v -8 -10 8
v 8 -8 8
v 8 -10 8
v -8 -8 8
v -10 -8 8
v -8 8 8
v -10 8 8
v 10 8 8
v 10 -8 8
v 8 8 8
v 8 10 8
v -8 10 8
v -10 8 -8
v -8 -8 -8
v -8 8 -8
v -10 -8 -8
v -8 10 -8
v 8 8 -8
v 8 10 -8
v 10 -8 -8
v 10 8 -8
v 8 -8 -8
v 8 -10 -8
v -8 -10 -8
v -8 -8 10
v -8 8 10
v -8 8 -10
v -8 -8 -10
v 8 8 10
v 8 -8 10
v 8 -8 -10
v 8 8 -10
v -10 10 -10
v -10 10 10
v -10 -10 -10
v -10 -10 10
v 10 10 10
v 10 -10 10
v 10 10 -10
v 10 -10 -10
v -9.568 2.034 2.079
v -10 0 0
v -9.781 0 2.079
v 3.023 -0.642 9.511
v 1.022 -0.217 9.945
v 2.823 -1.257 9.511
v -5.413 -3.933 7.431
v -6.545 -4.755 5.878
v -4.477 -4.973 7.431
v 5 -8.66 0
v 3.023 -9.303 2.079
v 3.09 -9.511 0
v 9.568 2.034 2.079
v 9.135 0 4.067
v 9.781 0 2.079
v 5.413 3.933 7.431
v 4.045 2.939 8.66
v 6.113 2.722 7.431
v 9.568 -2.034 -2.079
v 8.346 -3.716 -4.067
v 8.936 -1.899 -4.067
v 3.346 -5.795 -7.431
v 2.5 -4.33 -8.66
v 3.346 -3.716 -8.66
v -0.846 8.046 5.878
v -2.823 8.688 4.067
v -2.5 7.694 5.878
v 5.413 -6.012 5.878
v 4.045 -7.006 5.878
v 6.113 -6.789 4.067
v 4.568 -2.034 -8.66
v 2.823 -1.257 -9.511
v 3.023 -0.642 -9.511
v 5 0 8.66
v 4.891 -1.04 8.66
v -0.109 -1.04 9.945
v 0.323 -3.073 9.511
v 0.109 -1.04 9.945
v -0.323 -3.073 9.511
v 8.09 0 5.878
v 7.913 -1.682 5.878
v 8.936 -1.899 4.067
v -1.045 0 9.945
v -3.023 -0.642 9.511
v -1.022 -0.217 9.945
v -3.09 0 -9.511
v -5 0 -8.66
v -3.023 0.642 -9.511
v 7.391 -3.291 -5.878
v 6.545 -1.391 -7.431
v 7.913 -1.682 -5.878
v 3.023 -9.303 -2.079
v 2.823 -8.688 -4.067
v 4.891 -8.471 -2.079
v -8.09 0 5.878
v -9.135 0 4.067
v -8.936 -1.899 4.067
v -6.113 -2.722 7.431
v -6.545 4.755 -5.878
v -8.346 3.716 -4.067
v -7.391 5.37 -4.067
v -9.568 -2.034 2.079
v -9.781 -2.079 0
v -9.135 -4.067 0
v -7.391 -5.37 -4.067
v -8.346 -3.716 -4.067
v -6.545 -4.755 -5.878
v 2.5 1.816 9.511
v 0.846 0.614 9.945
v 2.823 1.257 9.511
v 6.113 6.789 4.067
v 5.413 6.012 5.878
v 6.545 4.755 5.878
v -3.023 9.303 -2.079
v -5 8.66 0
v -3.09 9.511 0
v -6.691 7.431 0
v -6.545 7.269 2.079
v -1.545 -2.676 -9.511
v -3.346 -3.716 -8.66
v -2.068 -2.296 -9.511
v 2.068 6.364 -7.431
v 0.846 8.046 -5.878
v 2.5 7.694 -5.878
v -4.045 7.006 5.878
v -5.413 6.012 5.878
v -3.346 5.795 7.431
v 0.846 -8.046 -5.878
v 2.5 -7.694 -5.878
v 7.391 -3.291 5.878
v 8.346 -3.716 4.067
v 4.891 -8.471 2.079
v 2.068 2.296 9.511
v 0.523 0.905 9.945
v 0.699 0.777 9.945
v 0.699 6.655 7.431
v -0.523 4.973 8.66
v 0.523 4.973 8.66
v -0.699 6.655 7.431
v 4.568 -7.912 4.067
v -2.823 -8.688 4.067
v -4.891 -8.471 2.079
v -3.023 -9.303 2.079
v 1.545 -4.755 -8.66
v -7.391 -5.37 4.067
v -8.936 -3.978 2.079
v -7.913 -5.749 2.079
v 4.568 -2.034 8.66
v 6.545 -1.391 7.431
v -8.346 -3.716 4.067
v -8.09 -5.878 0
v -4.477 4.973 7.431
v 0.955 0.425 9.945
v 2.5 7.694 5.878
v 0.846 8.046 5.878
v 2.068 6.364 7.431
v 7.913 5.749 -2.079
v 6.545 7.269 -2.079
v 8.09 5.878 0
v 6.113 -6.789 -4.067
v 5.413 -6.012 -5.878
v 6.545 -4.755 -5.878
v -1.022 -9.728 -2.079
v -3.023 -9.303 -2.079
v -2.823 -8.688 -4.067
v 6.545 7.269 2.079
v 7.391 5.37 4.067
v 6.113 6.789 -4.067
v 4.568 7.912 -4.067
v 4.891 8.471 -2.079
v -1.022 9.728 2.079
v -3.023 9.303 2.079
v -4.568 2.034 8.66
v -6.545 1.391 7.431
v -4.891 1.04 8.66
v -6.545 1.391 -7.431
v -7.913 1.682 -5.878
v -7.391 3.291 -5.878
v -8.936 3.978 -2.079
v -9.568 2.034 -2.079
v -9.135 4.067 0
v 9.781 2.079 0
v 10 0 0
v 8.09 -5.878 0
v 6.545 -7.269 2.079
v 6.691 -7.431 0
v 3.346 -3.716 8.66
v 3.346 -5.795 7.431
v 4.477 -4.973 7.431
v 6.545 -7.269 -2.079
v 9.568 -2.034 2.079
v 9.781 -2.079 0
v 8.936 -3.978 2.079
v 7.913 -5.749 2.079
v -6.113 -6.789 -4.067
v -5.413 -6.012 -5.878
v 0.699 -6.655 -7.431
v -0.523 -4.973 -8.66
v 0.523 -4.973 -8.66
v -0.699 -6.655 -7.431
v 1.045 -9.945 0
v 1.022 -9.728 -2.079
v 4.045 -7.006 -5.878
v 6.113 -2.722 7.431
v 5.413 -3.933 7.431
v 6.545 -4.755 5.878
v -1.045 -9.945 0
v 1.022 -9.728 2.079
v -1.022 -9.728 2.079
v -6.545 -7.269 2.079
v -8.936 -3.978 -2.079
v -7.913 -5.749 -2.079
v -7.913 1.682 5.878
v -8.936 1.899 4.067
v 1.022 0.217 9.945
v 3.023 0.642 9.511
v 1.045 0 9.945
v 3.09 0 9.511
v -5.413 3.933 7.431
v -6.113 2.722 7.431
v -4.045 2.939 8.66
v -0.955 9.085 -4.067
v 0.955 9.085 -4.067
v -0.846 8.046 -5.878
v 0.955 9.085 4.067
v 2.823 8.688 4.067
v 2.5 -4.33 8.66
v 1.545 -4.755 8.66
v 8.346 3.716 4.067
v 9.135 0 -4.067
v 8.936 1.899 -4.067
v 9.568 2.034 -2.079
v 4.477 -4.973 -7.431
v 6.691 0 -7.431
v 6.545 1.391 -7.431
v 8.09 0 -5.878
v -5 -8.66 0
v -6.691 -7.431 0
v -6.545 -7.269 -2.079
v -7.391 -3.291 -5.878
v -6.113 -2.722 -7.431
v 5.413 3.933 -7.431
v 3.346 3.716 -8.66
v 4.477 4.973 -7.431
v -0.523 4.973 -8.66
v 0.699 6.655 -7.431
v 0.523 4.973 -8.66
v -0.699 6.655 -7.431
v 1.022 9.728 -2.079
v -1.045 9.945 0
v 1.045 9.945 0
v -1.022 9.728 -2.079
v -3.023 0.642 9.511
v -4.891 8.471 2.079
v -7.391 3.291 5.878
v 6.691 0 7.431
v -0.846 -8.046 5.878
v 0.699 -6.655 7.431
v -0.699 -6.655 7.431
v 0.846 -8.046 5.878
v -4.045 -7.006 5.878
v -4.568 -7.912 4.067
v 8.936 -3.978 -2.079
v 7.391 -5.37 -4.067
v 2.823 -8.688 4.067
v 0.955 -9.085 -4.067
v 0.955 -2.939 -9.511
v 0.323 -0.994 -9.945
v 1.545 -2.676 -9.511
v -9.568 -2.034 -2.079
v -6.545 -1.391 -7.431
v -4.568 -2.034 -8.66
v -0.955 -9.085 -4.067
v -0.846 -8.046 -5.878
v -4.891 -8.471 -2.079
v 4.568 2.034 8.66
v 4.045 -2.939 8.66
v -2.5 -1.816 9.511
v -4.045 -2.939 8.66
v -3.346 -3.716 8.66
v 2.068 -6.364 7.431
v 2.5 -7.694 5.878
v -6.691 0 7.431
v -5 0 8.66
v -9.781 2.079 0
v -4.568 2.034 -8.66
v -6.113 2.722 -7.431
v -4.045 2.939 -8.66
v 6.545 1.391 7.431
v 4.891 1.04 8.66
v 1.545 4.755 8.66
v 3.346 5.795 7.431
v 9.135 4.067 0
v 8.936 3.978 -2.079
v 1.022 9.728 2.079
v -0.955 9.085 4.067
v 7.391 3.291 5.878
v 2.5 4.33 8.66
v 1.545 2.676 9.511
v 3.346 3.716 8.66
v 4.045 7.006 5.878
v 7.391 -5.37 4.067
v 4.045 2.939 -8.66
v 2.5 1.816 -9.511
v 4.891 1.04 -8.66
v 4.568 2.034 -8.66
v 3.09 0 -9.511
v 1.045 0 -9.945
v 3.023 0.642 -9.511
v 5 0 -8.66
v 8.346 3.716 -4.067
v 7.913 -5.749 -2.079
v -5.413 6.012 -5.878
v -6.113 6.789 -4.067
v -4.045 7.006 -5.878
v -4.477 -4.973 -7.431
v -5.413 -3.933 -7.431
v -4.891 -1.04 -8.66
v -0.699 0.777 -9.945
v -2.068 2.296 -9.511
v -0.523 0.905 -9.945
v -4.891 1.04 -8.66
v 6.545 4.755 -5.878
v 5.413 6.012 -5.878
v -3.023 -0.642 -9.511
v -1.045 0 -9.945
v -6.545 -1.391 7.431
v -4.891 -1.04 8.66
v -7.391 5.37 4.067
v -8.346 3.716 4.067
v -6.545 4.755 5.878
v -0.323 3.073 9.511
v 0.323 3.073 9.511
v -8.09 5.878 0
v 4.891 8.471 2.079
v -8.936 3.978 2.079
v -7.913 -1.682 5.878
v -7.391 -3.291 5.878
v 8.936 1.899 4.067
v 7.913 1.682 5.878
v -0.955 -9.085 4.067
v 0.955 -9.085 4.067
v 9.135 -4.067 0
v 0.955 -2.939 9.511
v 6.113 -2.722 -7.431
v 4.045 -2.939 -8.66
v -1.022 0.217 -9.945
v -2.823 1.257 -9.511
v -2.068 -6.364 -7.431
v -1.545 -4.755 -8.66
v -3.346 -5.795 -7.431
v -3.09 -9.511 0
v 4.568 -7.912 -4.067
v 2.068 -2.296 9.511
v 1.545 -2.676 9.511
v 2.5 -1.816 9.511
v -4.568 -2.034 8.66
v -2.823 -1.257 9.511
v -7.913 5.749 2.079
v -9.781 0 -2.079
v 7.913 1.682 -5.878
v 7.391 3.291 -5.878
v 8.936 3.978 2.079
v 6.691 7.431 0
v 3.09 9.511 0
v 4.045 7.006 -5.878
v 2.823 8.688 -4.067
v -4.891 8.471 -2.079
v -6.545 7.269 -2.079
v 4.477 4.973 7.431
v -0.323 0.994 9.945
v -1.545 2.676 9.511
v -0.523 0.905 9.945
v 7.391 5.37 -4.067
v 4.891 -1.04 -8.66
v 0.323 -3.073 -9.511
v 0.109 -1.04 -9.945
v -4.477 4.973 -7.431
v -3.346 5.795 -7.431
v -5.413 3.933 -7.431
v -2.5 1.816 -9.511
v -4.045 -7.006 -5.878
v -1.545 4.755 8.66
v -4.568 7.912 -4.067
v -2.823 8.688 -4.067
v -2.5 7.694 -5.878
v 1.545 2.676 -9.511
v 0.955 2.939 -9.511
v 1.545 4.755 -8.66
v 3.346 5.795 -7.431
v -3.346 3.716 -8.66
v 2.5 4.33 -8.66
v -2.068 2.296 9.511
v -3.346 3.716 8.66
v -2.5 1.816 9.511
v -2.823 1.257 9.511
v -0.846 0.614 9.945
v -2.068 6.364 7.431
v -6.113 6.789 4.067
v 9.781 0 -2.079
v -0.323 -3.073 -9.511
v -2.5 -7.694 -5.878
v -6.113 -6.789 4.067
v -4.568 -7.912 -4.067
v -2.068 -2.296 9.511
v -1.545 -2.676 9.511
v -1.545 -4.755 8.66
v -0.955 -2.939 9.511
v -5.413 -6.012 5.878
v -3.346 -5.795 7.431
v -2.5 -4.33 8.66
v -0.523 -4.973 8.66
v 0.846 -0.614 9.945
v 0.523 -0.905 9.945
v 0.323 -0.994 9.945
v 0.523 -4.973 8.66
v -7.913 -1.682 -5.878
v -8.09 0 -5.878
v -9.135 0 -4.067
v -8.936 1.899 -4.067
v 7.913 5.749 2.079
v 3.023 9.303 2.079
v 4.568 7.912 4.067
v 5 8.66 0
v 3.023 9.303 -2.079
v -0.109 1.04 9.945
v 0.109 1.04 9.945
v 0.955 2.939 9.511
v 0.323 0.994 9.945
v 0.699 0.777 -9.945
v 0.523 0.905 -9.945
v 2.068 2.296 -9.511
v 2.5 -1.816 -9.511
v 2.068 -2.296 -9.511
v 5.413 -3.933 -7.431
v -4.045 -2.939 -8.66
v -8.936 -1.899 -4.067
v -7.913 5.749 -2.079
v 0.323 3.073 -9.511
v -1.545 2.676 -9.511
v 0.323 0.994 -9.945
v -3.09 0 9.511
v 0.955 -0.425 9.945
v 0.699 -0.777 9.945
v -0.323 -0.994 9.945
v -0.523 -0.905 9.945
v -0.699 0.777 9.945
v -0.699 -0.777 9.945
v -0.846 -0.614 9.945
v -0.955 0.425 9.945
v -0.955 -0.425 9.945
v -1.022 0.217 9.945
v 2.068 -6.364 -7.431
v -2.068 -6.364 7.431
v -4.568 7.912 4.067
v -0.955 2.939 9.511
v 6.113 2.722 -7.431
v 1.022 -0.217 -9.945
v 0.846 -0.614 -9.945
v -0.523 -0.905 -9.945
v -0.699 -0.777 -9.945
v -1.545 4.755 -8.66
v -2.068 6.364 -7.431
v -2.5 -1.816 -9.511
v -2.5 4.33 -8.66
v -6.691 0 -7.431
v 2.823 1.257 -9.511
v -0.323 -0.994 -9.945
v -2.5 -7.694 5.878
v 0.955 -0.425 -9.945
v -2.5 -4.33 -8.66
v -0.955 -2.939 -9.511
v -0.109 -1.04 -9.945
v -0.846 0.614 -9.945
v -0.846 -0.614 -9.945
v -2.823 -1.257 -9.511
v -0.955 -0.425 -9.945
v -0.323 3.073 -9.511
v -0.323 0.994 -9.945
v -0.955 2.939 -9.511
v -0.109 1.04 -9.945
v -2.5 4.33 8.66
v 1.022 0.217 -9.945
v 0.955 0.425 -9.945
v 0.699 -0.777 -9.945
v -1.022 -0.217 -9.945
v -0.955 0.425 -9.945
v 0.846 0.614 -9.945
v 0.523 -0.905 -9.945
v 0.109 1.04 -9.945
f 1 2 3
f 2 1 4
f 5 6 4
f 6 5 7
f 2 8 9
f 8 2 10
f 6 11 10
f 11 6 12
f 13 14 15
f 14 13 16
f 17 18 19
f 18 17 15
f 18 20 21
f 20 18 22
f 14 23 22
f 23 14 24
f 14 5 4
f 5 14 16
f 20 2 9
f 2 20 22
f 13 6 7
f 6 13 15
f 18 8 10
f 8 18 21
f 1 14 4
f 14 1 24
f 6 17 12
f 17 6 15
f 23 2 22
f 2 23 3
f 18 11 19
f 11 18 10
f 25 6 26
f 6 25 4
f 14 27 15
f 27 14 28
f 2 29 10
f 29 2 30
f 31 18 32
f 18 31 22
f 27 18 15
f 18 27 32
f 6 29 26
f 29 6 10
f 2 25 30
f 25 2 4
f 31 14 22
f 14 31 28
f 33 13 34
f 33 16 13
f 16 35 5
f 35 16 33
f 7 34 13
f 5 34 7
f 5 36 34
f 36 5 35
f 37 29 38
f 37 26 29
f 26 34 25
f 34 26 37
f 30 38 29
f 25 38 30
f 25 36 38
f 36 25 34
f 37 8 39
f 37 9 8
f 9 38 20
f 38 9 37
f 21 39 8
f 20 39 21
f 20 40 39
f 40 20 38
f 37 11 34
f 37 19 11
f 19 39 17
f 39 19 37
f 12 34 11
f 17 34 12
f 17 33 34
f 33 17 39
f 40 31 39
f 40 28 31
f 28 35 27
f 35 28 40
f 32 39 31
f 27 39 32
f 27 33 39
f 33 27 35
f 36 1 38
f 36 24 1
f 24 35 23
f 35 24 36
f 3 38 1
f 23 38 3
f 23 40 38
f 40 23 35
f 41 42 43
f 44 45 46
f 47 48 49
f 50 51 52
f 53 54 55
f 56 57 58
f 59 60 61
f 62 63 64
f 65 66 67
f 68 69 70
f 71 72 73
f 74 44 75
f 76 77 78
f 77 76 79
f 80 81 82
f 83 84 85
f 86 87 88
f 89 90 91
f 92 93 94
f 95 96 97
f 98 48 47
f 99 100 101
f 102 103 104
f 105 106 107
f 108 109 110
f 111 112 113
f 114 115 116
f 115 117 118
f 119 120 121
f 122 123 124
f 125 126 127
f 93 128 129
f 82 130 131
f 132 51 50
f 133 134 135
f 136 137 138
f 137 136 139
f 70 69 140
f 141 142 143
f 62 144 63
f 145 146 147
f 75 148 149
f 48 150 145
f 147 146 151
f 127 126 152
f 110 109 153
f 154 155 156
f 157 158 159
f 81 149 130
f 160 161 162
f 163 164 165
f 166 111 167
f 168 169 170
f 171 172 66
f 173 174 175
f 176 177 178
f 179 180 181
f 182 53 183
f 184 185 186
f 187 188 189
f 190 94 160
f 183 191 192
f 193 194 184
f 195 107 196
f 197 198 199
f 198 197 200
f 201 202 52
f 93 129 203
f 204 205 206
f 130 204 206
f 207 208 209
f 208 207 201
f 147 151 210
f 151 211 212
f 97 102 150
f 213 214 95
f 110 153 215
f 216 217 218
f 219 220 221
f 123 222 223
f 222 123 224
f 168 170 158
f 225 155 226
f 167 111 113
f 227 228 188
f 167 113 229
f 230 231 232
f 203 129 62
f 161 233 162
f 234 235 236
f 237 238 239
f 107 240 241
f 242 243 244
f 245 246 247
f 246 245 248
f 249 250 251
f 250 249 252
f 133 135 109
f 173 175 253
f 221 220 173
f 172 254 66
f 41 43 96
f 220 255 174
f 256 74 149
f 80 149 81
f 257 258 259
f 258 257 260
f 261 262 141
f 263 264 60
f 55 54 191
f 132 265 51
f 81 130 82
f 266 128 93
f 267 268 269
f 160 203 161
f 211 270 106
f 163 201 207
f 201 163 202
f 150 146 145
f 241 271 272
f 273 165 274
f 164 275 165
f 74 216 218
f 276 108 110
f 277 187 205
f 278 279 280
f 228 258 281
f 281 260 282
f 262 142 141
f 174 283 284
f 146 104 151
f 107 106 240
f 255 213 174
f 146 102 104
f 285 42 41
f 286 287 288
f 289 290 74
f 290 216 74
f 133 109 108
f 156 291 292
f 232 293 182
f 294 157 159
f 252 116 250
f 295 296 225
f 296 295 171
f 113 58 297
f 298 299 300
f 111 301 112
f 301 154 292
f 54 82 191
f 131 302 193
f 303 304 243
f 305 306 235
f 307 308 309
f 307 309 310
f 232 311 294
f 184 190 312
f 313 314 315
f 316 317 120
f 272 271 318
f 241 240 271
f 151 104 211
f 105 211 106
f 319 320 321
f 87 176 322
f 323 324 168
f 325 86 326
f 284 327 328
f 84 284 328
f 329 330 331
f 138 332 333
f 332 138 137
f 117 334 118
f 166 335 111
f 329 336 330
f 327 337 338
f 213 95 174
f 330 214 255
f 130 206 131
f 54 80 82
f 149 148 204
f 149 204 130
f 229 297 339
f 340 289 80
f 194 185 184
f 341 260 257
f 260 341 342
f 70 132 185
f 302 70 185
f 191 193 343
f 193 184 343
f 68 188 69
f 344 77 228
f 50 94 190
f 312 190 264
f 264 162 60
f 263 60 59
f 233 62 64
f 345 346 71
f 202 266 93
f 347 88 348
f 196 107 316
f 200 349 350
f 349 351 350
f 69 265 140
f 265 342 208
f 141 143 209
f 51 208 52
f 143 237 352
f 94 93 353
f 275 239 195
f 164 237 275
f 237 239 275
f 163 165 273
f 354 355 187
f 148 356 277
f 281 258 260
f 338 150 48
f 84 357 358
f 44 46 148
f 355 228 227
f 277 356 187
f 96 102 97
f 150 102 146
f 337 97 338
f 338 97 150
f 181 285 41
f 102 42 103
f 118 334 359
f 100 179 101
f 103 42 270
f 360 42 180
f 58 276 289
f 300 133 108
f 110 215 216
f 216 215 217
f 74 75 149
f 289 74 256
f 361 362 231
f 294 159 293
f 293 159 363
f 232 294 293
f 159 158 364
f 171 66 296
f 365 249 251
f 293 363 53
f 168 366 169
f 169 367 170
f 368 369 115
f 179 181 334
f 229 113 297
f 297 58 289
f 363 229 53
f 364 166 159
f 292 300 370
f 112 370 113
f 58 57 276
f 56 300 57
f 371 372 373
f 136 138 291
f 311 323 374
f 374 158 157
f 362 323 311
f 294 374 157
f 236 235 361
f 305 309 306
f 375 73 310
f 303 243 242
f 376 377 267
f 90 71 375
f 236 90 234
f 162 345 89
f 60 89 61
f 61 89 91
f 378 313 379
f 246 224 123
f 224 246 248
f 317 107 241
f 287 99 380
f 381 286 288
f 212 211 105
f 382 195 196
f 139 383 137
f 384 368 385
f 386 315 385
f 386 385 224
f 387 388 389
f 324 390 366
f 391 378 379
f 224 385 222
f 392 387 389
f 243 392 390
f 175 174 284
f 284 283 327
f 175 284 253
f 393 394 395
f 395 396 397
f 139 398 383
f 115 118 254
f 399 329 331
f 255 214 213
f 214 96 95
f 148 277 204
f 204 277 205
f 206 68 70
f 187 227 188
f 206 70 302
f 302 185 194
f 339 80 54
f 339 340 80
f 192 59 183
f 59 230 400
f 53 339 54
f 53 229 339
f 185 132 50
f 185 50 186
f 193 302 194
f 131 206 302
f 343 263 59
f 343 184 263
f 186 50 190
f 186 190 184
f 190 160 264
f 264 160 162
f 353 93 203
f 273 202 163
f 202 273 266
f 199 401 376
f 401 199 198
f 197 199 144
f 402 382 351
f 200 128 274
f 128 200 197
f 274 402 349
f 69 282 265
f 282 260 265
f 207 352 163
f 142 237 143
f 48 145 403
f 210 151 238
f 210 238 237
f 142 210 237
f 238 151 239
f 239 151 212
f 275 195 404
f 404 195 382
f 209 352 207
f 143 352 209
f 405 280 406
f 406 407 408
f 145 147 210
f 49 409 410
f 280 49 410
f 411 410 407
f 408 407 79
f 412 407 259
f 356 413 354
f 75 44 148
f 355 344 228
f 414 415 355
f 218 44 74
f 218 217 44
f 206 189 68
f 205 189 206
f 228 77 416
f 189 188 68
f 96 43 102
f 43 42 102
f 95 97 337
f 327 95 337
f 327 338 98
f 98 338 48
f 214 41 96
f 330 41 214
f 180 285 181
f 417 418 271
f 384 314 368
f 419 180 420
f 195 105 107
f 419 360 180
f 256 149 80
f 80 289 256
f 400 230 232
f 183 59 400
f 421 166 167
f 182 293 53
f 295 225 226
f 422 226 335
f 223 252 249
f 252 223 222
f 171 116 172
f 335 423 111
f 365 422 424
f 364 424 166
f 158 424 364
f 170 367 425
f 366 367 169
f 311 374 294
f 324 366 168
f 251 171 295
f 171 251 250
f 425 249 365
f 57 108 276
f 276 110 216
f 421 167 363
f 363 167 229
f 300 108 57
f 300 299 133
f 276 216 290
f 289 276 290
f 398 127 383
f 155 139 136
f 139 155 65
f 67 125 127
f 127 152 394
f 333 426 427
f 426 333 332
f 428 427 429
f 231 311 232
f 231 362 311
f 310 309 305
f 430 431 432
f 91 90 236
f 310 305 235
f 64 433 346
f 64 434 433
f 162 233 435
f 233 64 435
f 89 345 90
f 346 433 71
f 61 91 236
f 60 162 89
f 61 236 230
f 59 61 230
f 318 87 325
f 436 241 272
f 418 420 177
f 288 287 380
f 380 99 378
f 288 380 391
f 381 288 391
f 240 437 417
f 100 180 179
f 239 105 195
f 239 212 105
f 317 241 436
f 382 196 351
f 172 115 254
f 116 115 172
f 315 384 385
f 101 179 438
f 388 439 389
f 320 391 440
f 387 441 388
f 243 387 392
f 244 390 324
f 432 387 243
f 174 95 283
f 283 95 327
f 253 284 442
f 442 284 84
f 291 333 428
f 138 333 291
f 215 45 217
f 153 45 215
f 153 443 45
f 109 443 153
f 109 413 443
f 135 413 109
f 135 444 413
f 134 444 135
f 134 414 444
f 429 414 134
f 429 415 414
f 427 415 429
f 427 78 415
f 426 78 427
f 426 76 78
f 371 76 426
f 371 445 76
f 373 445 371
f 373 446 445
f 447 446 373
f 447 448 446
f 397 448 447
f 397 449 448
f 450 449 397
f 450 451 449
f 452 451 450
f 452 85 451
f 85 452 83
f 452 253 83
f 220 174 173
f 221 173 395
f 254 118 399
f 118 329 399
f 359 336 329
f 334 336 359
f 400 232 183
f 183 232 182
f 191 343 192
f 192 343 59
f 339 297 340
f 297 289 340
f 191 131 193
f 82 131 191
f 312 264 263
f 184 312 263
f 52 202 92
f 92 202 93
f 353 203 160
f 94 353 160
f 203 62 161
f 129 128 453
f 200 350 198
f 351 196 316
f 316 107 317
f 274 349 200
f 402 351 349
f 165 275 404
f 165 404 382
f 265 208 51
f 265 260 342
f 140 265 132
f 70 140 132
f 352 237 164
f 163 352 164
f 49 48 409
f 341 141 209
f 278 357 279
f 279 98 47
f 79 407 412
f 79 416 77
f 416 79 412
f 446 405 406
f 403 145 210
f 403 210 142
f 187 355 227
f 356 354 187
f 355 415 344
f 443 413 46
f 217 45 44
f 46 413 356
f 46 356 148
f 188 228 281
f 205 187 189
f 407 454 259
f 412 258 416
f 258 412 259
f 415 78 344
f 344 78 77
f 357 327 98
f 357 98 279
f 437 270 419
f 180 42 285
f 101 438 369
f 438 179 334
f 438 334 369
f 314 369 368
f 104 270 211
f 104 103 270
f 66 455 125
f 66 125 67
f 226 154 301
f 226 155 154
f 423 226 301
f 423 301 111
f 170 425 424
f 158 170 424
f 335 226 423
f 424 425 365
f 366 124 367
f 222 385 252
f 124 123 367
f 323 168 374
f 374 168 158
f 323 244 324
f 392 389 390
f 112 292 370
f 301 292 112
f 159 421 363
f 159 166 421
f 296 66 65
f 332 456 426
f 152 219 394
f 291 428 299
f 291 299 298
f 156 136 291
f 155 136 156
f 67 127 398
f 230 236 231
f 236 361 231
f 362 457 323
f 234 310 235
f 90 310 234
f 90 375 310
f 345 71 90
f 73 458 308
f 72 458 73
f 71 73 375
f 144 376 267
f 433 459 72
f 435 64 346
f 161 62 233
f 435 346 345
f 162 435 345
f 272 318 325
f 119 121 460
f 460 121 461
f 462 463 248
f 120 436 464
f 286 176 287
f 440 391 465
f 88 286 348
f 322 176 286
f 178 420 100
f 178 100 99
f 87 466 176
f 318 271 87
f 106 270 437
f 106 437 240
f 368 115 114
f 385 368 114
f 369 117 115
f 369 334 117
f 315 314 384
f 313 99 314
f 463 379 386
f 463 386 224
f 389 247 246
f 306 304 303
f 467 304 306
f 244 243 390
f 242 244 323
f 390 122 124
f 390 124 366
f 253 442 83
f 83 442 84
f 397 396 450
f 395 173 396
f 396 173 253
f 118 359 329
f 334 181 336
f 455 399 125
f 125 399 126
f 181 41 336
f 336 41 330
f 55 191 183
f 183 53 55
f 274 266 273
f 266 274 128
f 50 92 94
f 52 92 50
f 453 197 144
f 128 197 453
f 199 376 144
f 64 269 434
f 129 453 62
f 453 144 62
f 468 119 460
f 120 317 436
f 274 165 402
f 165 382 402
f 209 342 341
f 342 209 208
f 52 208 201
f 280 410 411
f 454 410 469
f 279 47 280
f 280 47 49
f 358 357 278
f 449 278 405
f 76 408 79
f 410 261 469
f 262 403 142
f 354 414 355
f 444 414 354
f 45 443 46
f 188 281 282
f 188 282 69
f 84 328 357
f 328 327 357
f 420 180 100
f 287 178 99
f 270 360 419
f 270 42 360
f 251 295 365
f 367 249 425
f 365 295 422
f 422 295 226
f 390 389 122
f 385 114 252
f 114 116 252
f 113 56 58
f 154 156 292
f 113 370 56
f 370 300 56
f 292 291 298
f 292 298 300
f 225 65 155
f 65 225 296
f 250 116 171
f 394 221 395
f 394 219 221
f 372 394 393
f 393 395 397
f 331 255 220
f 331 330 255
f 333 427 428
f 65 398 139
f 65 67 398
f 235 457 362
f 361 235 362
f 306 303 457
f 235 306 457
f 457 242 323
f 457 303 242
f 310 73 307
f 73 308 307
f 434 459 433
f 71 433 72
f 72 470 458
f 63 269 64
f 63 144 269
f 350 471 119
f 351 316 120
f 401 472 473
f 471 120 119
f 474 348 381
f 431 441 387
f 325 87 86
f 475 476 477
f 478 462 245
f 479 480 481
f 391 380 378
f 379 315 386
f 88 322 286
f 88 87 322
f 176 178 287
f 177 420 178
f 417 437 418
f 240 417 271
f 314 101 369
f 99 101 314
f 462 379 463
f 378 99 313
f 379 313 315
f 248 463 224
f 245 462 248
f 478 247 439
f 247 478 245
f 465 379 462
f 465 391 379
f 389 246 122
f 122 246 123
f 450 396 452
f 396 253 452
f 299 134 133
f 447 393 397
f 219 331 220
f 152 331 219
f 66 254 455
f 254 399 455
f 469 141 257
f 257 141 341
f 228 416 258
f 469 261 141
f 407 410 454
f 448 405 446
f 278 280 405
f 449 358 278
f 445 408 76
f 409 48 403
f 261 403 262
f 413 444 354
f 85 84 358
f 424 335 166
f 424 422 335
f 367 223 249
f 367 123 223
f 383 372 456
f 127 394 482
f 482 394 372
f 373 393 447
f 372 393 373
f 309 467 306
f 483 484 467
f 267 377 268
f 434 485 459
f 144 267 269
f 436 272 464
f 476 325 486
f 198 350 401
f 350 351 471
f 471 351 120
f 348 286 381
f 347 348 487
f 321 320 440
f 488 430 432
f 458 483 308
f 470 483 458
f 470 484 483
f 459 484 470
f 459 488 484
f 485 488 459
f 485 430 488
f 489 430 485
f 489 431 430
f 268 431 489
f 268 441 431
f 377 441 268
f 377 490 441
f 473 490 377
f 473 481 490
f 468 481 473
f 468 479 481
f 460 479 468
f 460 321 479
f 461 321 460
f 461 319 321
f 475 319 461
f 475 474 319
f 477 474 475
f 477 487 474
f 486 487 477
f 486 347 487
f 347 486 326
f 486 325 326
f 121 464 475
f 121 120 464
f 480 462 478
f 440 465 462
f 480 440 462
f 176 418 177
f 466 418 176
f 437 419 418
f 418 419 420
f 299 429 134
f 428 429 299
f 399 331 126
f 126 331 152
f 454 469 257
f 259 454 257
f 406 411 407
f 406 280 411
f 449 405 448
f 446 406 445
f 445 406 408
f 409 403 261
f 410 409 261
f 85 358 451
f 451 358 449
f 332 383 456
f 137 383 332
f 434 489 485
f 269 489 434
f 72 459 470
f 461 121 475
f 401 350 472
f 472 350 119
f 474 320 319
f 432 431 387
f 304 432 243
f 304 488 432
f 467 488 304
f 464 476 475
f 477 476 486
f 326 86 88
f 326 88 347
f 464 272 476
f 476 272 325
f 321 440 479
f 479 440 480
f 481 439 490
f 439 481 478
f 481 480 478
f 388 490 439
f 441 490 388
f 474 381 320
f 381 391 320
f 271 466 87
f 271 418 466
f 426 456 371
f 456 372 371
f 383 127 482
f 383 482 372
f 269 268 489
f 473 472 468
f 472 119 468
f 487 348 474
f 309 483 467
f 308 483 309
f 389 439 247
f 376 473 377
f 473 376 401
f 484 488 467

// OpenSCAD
union(){
    difference(){
        translate(v=[-10, -10, -10]){
            cube(size=[20, 20, 20]);
        };
        union(){
            translate(v=[6, 2, 2]){
                translate(v=[-10, -10, -10]){
                    cube(size=[16, 16, 16]);
                };
            };
            translate(v=[-6, 2, 2]){
                translate(v=[-10, -10, -10]){
                    cube(size=[16, 16, 16]);
                };
            };
            translate(v=[2, 6, 2]){
                translate(v=[-10, -10, -10]){
                    cube(size=[16, 16, 16]);
                };
            };
            translate(v=[2, -6, 2]){
                translate(v=[-10, -10, -10]){
                    cube(size=[16, 16, 16]);
                };
            };
            translate(v=[2, 2, 6]){
                translate(v=[-10, -10, -10]){
                    cube(size=[16, 16, 16]);
                };
            };
            translate(v=[2, 2, -6]){
                translate(v=[-10, -10, -10]){
                    cube(size=[16, 16, 16]);
                };
            };
        };
    };
    sphere(r=10);
};
